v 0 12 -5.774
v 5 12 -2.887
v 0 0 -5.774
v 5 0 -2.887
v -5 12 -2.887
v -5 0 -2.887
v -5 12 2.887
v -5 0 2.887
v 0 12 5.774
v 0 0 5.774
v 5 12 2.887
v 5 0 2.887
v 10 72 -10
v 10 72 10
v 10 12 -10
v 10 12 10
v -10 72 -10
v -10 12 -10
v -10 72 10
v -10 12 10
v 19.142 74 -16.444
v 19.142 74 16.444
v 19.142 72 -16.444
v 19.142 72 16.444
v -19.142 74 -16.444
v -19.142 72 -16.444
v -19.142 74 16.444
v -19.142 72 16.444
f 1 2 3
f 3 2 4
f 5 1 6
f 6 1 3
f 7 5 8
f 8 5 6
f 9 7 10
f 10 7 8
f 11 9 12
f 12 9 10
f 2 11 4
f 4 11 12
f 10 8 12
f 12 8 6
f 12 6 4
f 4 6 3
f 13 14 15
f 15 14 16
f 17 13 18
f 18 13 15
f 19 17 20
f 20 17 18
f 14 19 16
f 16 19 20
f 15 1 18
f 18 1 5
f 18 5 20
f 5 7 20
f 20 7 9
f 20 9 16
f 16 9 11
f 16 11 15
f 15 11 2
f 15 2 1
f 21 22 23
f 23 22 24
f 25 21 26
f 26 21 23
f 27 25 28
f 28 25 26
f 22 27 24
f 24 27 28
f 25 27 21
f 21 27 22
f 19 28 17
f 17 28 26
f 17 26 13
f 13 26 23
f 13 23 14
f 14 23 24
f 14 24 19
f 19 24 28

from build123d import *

# Parameters (mm, degrees)
BOSS_EXTRUDE1_DEPTH = 12
SKETCH2_W           = 20
SKETCH2_H           = 20
BOSS_EXTRUDE2_DEPTH = 60
SKETCH3_W           = 38.284232122
SKETCH3_H           = 32.888854422
BOSS_EXTRUDE3_DEPTH = 2


with BuildPart() as part:
    # Sketch1 → Boss-Extrude1 (new body)
    with BuildSketch(Plane(origin=(0, 0, 0), x_dir=(1, 0, 0), z_dir=(0, 1, 0))):
        Polygon((0, 5.773502692), (-5, 2.886751346), (-5, -2.886751346), (0, -5.773502692), (5, -2.886751346), (5, 2.886751346), align=None)
    extrude(amount=BOSS_EXTRUDE1_DEPTH)

    # Sketch2 → Boss-Extrude2 (add)
    with BuildSketch(Plane(origin=(0, 12, 0), x_dir=(1, 0, 0), z_dir=(0, 1, 0))):
        Rectangle(SKETCH2_W, SKETCH2_H)
    extrude(amount=BOSS_EXTRUDE2_DEPTH)

    # Sketch3 → Boss-Extrude3 (add)
    with BuildSketch(Plane(origin=(0, 72, 0), x_dir=(1, 0, 0), z_dir=(0, 1, 0))):
        Rectangle(SKETCH3_W, SKETCH3_H)
    extrude(amount=BOSS_EXTRUDE3_DEPTH)


solid = part.part
